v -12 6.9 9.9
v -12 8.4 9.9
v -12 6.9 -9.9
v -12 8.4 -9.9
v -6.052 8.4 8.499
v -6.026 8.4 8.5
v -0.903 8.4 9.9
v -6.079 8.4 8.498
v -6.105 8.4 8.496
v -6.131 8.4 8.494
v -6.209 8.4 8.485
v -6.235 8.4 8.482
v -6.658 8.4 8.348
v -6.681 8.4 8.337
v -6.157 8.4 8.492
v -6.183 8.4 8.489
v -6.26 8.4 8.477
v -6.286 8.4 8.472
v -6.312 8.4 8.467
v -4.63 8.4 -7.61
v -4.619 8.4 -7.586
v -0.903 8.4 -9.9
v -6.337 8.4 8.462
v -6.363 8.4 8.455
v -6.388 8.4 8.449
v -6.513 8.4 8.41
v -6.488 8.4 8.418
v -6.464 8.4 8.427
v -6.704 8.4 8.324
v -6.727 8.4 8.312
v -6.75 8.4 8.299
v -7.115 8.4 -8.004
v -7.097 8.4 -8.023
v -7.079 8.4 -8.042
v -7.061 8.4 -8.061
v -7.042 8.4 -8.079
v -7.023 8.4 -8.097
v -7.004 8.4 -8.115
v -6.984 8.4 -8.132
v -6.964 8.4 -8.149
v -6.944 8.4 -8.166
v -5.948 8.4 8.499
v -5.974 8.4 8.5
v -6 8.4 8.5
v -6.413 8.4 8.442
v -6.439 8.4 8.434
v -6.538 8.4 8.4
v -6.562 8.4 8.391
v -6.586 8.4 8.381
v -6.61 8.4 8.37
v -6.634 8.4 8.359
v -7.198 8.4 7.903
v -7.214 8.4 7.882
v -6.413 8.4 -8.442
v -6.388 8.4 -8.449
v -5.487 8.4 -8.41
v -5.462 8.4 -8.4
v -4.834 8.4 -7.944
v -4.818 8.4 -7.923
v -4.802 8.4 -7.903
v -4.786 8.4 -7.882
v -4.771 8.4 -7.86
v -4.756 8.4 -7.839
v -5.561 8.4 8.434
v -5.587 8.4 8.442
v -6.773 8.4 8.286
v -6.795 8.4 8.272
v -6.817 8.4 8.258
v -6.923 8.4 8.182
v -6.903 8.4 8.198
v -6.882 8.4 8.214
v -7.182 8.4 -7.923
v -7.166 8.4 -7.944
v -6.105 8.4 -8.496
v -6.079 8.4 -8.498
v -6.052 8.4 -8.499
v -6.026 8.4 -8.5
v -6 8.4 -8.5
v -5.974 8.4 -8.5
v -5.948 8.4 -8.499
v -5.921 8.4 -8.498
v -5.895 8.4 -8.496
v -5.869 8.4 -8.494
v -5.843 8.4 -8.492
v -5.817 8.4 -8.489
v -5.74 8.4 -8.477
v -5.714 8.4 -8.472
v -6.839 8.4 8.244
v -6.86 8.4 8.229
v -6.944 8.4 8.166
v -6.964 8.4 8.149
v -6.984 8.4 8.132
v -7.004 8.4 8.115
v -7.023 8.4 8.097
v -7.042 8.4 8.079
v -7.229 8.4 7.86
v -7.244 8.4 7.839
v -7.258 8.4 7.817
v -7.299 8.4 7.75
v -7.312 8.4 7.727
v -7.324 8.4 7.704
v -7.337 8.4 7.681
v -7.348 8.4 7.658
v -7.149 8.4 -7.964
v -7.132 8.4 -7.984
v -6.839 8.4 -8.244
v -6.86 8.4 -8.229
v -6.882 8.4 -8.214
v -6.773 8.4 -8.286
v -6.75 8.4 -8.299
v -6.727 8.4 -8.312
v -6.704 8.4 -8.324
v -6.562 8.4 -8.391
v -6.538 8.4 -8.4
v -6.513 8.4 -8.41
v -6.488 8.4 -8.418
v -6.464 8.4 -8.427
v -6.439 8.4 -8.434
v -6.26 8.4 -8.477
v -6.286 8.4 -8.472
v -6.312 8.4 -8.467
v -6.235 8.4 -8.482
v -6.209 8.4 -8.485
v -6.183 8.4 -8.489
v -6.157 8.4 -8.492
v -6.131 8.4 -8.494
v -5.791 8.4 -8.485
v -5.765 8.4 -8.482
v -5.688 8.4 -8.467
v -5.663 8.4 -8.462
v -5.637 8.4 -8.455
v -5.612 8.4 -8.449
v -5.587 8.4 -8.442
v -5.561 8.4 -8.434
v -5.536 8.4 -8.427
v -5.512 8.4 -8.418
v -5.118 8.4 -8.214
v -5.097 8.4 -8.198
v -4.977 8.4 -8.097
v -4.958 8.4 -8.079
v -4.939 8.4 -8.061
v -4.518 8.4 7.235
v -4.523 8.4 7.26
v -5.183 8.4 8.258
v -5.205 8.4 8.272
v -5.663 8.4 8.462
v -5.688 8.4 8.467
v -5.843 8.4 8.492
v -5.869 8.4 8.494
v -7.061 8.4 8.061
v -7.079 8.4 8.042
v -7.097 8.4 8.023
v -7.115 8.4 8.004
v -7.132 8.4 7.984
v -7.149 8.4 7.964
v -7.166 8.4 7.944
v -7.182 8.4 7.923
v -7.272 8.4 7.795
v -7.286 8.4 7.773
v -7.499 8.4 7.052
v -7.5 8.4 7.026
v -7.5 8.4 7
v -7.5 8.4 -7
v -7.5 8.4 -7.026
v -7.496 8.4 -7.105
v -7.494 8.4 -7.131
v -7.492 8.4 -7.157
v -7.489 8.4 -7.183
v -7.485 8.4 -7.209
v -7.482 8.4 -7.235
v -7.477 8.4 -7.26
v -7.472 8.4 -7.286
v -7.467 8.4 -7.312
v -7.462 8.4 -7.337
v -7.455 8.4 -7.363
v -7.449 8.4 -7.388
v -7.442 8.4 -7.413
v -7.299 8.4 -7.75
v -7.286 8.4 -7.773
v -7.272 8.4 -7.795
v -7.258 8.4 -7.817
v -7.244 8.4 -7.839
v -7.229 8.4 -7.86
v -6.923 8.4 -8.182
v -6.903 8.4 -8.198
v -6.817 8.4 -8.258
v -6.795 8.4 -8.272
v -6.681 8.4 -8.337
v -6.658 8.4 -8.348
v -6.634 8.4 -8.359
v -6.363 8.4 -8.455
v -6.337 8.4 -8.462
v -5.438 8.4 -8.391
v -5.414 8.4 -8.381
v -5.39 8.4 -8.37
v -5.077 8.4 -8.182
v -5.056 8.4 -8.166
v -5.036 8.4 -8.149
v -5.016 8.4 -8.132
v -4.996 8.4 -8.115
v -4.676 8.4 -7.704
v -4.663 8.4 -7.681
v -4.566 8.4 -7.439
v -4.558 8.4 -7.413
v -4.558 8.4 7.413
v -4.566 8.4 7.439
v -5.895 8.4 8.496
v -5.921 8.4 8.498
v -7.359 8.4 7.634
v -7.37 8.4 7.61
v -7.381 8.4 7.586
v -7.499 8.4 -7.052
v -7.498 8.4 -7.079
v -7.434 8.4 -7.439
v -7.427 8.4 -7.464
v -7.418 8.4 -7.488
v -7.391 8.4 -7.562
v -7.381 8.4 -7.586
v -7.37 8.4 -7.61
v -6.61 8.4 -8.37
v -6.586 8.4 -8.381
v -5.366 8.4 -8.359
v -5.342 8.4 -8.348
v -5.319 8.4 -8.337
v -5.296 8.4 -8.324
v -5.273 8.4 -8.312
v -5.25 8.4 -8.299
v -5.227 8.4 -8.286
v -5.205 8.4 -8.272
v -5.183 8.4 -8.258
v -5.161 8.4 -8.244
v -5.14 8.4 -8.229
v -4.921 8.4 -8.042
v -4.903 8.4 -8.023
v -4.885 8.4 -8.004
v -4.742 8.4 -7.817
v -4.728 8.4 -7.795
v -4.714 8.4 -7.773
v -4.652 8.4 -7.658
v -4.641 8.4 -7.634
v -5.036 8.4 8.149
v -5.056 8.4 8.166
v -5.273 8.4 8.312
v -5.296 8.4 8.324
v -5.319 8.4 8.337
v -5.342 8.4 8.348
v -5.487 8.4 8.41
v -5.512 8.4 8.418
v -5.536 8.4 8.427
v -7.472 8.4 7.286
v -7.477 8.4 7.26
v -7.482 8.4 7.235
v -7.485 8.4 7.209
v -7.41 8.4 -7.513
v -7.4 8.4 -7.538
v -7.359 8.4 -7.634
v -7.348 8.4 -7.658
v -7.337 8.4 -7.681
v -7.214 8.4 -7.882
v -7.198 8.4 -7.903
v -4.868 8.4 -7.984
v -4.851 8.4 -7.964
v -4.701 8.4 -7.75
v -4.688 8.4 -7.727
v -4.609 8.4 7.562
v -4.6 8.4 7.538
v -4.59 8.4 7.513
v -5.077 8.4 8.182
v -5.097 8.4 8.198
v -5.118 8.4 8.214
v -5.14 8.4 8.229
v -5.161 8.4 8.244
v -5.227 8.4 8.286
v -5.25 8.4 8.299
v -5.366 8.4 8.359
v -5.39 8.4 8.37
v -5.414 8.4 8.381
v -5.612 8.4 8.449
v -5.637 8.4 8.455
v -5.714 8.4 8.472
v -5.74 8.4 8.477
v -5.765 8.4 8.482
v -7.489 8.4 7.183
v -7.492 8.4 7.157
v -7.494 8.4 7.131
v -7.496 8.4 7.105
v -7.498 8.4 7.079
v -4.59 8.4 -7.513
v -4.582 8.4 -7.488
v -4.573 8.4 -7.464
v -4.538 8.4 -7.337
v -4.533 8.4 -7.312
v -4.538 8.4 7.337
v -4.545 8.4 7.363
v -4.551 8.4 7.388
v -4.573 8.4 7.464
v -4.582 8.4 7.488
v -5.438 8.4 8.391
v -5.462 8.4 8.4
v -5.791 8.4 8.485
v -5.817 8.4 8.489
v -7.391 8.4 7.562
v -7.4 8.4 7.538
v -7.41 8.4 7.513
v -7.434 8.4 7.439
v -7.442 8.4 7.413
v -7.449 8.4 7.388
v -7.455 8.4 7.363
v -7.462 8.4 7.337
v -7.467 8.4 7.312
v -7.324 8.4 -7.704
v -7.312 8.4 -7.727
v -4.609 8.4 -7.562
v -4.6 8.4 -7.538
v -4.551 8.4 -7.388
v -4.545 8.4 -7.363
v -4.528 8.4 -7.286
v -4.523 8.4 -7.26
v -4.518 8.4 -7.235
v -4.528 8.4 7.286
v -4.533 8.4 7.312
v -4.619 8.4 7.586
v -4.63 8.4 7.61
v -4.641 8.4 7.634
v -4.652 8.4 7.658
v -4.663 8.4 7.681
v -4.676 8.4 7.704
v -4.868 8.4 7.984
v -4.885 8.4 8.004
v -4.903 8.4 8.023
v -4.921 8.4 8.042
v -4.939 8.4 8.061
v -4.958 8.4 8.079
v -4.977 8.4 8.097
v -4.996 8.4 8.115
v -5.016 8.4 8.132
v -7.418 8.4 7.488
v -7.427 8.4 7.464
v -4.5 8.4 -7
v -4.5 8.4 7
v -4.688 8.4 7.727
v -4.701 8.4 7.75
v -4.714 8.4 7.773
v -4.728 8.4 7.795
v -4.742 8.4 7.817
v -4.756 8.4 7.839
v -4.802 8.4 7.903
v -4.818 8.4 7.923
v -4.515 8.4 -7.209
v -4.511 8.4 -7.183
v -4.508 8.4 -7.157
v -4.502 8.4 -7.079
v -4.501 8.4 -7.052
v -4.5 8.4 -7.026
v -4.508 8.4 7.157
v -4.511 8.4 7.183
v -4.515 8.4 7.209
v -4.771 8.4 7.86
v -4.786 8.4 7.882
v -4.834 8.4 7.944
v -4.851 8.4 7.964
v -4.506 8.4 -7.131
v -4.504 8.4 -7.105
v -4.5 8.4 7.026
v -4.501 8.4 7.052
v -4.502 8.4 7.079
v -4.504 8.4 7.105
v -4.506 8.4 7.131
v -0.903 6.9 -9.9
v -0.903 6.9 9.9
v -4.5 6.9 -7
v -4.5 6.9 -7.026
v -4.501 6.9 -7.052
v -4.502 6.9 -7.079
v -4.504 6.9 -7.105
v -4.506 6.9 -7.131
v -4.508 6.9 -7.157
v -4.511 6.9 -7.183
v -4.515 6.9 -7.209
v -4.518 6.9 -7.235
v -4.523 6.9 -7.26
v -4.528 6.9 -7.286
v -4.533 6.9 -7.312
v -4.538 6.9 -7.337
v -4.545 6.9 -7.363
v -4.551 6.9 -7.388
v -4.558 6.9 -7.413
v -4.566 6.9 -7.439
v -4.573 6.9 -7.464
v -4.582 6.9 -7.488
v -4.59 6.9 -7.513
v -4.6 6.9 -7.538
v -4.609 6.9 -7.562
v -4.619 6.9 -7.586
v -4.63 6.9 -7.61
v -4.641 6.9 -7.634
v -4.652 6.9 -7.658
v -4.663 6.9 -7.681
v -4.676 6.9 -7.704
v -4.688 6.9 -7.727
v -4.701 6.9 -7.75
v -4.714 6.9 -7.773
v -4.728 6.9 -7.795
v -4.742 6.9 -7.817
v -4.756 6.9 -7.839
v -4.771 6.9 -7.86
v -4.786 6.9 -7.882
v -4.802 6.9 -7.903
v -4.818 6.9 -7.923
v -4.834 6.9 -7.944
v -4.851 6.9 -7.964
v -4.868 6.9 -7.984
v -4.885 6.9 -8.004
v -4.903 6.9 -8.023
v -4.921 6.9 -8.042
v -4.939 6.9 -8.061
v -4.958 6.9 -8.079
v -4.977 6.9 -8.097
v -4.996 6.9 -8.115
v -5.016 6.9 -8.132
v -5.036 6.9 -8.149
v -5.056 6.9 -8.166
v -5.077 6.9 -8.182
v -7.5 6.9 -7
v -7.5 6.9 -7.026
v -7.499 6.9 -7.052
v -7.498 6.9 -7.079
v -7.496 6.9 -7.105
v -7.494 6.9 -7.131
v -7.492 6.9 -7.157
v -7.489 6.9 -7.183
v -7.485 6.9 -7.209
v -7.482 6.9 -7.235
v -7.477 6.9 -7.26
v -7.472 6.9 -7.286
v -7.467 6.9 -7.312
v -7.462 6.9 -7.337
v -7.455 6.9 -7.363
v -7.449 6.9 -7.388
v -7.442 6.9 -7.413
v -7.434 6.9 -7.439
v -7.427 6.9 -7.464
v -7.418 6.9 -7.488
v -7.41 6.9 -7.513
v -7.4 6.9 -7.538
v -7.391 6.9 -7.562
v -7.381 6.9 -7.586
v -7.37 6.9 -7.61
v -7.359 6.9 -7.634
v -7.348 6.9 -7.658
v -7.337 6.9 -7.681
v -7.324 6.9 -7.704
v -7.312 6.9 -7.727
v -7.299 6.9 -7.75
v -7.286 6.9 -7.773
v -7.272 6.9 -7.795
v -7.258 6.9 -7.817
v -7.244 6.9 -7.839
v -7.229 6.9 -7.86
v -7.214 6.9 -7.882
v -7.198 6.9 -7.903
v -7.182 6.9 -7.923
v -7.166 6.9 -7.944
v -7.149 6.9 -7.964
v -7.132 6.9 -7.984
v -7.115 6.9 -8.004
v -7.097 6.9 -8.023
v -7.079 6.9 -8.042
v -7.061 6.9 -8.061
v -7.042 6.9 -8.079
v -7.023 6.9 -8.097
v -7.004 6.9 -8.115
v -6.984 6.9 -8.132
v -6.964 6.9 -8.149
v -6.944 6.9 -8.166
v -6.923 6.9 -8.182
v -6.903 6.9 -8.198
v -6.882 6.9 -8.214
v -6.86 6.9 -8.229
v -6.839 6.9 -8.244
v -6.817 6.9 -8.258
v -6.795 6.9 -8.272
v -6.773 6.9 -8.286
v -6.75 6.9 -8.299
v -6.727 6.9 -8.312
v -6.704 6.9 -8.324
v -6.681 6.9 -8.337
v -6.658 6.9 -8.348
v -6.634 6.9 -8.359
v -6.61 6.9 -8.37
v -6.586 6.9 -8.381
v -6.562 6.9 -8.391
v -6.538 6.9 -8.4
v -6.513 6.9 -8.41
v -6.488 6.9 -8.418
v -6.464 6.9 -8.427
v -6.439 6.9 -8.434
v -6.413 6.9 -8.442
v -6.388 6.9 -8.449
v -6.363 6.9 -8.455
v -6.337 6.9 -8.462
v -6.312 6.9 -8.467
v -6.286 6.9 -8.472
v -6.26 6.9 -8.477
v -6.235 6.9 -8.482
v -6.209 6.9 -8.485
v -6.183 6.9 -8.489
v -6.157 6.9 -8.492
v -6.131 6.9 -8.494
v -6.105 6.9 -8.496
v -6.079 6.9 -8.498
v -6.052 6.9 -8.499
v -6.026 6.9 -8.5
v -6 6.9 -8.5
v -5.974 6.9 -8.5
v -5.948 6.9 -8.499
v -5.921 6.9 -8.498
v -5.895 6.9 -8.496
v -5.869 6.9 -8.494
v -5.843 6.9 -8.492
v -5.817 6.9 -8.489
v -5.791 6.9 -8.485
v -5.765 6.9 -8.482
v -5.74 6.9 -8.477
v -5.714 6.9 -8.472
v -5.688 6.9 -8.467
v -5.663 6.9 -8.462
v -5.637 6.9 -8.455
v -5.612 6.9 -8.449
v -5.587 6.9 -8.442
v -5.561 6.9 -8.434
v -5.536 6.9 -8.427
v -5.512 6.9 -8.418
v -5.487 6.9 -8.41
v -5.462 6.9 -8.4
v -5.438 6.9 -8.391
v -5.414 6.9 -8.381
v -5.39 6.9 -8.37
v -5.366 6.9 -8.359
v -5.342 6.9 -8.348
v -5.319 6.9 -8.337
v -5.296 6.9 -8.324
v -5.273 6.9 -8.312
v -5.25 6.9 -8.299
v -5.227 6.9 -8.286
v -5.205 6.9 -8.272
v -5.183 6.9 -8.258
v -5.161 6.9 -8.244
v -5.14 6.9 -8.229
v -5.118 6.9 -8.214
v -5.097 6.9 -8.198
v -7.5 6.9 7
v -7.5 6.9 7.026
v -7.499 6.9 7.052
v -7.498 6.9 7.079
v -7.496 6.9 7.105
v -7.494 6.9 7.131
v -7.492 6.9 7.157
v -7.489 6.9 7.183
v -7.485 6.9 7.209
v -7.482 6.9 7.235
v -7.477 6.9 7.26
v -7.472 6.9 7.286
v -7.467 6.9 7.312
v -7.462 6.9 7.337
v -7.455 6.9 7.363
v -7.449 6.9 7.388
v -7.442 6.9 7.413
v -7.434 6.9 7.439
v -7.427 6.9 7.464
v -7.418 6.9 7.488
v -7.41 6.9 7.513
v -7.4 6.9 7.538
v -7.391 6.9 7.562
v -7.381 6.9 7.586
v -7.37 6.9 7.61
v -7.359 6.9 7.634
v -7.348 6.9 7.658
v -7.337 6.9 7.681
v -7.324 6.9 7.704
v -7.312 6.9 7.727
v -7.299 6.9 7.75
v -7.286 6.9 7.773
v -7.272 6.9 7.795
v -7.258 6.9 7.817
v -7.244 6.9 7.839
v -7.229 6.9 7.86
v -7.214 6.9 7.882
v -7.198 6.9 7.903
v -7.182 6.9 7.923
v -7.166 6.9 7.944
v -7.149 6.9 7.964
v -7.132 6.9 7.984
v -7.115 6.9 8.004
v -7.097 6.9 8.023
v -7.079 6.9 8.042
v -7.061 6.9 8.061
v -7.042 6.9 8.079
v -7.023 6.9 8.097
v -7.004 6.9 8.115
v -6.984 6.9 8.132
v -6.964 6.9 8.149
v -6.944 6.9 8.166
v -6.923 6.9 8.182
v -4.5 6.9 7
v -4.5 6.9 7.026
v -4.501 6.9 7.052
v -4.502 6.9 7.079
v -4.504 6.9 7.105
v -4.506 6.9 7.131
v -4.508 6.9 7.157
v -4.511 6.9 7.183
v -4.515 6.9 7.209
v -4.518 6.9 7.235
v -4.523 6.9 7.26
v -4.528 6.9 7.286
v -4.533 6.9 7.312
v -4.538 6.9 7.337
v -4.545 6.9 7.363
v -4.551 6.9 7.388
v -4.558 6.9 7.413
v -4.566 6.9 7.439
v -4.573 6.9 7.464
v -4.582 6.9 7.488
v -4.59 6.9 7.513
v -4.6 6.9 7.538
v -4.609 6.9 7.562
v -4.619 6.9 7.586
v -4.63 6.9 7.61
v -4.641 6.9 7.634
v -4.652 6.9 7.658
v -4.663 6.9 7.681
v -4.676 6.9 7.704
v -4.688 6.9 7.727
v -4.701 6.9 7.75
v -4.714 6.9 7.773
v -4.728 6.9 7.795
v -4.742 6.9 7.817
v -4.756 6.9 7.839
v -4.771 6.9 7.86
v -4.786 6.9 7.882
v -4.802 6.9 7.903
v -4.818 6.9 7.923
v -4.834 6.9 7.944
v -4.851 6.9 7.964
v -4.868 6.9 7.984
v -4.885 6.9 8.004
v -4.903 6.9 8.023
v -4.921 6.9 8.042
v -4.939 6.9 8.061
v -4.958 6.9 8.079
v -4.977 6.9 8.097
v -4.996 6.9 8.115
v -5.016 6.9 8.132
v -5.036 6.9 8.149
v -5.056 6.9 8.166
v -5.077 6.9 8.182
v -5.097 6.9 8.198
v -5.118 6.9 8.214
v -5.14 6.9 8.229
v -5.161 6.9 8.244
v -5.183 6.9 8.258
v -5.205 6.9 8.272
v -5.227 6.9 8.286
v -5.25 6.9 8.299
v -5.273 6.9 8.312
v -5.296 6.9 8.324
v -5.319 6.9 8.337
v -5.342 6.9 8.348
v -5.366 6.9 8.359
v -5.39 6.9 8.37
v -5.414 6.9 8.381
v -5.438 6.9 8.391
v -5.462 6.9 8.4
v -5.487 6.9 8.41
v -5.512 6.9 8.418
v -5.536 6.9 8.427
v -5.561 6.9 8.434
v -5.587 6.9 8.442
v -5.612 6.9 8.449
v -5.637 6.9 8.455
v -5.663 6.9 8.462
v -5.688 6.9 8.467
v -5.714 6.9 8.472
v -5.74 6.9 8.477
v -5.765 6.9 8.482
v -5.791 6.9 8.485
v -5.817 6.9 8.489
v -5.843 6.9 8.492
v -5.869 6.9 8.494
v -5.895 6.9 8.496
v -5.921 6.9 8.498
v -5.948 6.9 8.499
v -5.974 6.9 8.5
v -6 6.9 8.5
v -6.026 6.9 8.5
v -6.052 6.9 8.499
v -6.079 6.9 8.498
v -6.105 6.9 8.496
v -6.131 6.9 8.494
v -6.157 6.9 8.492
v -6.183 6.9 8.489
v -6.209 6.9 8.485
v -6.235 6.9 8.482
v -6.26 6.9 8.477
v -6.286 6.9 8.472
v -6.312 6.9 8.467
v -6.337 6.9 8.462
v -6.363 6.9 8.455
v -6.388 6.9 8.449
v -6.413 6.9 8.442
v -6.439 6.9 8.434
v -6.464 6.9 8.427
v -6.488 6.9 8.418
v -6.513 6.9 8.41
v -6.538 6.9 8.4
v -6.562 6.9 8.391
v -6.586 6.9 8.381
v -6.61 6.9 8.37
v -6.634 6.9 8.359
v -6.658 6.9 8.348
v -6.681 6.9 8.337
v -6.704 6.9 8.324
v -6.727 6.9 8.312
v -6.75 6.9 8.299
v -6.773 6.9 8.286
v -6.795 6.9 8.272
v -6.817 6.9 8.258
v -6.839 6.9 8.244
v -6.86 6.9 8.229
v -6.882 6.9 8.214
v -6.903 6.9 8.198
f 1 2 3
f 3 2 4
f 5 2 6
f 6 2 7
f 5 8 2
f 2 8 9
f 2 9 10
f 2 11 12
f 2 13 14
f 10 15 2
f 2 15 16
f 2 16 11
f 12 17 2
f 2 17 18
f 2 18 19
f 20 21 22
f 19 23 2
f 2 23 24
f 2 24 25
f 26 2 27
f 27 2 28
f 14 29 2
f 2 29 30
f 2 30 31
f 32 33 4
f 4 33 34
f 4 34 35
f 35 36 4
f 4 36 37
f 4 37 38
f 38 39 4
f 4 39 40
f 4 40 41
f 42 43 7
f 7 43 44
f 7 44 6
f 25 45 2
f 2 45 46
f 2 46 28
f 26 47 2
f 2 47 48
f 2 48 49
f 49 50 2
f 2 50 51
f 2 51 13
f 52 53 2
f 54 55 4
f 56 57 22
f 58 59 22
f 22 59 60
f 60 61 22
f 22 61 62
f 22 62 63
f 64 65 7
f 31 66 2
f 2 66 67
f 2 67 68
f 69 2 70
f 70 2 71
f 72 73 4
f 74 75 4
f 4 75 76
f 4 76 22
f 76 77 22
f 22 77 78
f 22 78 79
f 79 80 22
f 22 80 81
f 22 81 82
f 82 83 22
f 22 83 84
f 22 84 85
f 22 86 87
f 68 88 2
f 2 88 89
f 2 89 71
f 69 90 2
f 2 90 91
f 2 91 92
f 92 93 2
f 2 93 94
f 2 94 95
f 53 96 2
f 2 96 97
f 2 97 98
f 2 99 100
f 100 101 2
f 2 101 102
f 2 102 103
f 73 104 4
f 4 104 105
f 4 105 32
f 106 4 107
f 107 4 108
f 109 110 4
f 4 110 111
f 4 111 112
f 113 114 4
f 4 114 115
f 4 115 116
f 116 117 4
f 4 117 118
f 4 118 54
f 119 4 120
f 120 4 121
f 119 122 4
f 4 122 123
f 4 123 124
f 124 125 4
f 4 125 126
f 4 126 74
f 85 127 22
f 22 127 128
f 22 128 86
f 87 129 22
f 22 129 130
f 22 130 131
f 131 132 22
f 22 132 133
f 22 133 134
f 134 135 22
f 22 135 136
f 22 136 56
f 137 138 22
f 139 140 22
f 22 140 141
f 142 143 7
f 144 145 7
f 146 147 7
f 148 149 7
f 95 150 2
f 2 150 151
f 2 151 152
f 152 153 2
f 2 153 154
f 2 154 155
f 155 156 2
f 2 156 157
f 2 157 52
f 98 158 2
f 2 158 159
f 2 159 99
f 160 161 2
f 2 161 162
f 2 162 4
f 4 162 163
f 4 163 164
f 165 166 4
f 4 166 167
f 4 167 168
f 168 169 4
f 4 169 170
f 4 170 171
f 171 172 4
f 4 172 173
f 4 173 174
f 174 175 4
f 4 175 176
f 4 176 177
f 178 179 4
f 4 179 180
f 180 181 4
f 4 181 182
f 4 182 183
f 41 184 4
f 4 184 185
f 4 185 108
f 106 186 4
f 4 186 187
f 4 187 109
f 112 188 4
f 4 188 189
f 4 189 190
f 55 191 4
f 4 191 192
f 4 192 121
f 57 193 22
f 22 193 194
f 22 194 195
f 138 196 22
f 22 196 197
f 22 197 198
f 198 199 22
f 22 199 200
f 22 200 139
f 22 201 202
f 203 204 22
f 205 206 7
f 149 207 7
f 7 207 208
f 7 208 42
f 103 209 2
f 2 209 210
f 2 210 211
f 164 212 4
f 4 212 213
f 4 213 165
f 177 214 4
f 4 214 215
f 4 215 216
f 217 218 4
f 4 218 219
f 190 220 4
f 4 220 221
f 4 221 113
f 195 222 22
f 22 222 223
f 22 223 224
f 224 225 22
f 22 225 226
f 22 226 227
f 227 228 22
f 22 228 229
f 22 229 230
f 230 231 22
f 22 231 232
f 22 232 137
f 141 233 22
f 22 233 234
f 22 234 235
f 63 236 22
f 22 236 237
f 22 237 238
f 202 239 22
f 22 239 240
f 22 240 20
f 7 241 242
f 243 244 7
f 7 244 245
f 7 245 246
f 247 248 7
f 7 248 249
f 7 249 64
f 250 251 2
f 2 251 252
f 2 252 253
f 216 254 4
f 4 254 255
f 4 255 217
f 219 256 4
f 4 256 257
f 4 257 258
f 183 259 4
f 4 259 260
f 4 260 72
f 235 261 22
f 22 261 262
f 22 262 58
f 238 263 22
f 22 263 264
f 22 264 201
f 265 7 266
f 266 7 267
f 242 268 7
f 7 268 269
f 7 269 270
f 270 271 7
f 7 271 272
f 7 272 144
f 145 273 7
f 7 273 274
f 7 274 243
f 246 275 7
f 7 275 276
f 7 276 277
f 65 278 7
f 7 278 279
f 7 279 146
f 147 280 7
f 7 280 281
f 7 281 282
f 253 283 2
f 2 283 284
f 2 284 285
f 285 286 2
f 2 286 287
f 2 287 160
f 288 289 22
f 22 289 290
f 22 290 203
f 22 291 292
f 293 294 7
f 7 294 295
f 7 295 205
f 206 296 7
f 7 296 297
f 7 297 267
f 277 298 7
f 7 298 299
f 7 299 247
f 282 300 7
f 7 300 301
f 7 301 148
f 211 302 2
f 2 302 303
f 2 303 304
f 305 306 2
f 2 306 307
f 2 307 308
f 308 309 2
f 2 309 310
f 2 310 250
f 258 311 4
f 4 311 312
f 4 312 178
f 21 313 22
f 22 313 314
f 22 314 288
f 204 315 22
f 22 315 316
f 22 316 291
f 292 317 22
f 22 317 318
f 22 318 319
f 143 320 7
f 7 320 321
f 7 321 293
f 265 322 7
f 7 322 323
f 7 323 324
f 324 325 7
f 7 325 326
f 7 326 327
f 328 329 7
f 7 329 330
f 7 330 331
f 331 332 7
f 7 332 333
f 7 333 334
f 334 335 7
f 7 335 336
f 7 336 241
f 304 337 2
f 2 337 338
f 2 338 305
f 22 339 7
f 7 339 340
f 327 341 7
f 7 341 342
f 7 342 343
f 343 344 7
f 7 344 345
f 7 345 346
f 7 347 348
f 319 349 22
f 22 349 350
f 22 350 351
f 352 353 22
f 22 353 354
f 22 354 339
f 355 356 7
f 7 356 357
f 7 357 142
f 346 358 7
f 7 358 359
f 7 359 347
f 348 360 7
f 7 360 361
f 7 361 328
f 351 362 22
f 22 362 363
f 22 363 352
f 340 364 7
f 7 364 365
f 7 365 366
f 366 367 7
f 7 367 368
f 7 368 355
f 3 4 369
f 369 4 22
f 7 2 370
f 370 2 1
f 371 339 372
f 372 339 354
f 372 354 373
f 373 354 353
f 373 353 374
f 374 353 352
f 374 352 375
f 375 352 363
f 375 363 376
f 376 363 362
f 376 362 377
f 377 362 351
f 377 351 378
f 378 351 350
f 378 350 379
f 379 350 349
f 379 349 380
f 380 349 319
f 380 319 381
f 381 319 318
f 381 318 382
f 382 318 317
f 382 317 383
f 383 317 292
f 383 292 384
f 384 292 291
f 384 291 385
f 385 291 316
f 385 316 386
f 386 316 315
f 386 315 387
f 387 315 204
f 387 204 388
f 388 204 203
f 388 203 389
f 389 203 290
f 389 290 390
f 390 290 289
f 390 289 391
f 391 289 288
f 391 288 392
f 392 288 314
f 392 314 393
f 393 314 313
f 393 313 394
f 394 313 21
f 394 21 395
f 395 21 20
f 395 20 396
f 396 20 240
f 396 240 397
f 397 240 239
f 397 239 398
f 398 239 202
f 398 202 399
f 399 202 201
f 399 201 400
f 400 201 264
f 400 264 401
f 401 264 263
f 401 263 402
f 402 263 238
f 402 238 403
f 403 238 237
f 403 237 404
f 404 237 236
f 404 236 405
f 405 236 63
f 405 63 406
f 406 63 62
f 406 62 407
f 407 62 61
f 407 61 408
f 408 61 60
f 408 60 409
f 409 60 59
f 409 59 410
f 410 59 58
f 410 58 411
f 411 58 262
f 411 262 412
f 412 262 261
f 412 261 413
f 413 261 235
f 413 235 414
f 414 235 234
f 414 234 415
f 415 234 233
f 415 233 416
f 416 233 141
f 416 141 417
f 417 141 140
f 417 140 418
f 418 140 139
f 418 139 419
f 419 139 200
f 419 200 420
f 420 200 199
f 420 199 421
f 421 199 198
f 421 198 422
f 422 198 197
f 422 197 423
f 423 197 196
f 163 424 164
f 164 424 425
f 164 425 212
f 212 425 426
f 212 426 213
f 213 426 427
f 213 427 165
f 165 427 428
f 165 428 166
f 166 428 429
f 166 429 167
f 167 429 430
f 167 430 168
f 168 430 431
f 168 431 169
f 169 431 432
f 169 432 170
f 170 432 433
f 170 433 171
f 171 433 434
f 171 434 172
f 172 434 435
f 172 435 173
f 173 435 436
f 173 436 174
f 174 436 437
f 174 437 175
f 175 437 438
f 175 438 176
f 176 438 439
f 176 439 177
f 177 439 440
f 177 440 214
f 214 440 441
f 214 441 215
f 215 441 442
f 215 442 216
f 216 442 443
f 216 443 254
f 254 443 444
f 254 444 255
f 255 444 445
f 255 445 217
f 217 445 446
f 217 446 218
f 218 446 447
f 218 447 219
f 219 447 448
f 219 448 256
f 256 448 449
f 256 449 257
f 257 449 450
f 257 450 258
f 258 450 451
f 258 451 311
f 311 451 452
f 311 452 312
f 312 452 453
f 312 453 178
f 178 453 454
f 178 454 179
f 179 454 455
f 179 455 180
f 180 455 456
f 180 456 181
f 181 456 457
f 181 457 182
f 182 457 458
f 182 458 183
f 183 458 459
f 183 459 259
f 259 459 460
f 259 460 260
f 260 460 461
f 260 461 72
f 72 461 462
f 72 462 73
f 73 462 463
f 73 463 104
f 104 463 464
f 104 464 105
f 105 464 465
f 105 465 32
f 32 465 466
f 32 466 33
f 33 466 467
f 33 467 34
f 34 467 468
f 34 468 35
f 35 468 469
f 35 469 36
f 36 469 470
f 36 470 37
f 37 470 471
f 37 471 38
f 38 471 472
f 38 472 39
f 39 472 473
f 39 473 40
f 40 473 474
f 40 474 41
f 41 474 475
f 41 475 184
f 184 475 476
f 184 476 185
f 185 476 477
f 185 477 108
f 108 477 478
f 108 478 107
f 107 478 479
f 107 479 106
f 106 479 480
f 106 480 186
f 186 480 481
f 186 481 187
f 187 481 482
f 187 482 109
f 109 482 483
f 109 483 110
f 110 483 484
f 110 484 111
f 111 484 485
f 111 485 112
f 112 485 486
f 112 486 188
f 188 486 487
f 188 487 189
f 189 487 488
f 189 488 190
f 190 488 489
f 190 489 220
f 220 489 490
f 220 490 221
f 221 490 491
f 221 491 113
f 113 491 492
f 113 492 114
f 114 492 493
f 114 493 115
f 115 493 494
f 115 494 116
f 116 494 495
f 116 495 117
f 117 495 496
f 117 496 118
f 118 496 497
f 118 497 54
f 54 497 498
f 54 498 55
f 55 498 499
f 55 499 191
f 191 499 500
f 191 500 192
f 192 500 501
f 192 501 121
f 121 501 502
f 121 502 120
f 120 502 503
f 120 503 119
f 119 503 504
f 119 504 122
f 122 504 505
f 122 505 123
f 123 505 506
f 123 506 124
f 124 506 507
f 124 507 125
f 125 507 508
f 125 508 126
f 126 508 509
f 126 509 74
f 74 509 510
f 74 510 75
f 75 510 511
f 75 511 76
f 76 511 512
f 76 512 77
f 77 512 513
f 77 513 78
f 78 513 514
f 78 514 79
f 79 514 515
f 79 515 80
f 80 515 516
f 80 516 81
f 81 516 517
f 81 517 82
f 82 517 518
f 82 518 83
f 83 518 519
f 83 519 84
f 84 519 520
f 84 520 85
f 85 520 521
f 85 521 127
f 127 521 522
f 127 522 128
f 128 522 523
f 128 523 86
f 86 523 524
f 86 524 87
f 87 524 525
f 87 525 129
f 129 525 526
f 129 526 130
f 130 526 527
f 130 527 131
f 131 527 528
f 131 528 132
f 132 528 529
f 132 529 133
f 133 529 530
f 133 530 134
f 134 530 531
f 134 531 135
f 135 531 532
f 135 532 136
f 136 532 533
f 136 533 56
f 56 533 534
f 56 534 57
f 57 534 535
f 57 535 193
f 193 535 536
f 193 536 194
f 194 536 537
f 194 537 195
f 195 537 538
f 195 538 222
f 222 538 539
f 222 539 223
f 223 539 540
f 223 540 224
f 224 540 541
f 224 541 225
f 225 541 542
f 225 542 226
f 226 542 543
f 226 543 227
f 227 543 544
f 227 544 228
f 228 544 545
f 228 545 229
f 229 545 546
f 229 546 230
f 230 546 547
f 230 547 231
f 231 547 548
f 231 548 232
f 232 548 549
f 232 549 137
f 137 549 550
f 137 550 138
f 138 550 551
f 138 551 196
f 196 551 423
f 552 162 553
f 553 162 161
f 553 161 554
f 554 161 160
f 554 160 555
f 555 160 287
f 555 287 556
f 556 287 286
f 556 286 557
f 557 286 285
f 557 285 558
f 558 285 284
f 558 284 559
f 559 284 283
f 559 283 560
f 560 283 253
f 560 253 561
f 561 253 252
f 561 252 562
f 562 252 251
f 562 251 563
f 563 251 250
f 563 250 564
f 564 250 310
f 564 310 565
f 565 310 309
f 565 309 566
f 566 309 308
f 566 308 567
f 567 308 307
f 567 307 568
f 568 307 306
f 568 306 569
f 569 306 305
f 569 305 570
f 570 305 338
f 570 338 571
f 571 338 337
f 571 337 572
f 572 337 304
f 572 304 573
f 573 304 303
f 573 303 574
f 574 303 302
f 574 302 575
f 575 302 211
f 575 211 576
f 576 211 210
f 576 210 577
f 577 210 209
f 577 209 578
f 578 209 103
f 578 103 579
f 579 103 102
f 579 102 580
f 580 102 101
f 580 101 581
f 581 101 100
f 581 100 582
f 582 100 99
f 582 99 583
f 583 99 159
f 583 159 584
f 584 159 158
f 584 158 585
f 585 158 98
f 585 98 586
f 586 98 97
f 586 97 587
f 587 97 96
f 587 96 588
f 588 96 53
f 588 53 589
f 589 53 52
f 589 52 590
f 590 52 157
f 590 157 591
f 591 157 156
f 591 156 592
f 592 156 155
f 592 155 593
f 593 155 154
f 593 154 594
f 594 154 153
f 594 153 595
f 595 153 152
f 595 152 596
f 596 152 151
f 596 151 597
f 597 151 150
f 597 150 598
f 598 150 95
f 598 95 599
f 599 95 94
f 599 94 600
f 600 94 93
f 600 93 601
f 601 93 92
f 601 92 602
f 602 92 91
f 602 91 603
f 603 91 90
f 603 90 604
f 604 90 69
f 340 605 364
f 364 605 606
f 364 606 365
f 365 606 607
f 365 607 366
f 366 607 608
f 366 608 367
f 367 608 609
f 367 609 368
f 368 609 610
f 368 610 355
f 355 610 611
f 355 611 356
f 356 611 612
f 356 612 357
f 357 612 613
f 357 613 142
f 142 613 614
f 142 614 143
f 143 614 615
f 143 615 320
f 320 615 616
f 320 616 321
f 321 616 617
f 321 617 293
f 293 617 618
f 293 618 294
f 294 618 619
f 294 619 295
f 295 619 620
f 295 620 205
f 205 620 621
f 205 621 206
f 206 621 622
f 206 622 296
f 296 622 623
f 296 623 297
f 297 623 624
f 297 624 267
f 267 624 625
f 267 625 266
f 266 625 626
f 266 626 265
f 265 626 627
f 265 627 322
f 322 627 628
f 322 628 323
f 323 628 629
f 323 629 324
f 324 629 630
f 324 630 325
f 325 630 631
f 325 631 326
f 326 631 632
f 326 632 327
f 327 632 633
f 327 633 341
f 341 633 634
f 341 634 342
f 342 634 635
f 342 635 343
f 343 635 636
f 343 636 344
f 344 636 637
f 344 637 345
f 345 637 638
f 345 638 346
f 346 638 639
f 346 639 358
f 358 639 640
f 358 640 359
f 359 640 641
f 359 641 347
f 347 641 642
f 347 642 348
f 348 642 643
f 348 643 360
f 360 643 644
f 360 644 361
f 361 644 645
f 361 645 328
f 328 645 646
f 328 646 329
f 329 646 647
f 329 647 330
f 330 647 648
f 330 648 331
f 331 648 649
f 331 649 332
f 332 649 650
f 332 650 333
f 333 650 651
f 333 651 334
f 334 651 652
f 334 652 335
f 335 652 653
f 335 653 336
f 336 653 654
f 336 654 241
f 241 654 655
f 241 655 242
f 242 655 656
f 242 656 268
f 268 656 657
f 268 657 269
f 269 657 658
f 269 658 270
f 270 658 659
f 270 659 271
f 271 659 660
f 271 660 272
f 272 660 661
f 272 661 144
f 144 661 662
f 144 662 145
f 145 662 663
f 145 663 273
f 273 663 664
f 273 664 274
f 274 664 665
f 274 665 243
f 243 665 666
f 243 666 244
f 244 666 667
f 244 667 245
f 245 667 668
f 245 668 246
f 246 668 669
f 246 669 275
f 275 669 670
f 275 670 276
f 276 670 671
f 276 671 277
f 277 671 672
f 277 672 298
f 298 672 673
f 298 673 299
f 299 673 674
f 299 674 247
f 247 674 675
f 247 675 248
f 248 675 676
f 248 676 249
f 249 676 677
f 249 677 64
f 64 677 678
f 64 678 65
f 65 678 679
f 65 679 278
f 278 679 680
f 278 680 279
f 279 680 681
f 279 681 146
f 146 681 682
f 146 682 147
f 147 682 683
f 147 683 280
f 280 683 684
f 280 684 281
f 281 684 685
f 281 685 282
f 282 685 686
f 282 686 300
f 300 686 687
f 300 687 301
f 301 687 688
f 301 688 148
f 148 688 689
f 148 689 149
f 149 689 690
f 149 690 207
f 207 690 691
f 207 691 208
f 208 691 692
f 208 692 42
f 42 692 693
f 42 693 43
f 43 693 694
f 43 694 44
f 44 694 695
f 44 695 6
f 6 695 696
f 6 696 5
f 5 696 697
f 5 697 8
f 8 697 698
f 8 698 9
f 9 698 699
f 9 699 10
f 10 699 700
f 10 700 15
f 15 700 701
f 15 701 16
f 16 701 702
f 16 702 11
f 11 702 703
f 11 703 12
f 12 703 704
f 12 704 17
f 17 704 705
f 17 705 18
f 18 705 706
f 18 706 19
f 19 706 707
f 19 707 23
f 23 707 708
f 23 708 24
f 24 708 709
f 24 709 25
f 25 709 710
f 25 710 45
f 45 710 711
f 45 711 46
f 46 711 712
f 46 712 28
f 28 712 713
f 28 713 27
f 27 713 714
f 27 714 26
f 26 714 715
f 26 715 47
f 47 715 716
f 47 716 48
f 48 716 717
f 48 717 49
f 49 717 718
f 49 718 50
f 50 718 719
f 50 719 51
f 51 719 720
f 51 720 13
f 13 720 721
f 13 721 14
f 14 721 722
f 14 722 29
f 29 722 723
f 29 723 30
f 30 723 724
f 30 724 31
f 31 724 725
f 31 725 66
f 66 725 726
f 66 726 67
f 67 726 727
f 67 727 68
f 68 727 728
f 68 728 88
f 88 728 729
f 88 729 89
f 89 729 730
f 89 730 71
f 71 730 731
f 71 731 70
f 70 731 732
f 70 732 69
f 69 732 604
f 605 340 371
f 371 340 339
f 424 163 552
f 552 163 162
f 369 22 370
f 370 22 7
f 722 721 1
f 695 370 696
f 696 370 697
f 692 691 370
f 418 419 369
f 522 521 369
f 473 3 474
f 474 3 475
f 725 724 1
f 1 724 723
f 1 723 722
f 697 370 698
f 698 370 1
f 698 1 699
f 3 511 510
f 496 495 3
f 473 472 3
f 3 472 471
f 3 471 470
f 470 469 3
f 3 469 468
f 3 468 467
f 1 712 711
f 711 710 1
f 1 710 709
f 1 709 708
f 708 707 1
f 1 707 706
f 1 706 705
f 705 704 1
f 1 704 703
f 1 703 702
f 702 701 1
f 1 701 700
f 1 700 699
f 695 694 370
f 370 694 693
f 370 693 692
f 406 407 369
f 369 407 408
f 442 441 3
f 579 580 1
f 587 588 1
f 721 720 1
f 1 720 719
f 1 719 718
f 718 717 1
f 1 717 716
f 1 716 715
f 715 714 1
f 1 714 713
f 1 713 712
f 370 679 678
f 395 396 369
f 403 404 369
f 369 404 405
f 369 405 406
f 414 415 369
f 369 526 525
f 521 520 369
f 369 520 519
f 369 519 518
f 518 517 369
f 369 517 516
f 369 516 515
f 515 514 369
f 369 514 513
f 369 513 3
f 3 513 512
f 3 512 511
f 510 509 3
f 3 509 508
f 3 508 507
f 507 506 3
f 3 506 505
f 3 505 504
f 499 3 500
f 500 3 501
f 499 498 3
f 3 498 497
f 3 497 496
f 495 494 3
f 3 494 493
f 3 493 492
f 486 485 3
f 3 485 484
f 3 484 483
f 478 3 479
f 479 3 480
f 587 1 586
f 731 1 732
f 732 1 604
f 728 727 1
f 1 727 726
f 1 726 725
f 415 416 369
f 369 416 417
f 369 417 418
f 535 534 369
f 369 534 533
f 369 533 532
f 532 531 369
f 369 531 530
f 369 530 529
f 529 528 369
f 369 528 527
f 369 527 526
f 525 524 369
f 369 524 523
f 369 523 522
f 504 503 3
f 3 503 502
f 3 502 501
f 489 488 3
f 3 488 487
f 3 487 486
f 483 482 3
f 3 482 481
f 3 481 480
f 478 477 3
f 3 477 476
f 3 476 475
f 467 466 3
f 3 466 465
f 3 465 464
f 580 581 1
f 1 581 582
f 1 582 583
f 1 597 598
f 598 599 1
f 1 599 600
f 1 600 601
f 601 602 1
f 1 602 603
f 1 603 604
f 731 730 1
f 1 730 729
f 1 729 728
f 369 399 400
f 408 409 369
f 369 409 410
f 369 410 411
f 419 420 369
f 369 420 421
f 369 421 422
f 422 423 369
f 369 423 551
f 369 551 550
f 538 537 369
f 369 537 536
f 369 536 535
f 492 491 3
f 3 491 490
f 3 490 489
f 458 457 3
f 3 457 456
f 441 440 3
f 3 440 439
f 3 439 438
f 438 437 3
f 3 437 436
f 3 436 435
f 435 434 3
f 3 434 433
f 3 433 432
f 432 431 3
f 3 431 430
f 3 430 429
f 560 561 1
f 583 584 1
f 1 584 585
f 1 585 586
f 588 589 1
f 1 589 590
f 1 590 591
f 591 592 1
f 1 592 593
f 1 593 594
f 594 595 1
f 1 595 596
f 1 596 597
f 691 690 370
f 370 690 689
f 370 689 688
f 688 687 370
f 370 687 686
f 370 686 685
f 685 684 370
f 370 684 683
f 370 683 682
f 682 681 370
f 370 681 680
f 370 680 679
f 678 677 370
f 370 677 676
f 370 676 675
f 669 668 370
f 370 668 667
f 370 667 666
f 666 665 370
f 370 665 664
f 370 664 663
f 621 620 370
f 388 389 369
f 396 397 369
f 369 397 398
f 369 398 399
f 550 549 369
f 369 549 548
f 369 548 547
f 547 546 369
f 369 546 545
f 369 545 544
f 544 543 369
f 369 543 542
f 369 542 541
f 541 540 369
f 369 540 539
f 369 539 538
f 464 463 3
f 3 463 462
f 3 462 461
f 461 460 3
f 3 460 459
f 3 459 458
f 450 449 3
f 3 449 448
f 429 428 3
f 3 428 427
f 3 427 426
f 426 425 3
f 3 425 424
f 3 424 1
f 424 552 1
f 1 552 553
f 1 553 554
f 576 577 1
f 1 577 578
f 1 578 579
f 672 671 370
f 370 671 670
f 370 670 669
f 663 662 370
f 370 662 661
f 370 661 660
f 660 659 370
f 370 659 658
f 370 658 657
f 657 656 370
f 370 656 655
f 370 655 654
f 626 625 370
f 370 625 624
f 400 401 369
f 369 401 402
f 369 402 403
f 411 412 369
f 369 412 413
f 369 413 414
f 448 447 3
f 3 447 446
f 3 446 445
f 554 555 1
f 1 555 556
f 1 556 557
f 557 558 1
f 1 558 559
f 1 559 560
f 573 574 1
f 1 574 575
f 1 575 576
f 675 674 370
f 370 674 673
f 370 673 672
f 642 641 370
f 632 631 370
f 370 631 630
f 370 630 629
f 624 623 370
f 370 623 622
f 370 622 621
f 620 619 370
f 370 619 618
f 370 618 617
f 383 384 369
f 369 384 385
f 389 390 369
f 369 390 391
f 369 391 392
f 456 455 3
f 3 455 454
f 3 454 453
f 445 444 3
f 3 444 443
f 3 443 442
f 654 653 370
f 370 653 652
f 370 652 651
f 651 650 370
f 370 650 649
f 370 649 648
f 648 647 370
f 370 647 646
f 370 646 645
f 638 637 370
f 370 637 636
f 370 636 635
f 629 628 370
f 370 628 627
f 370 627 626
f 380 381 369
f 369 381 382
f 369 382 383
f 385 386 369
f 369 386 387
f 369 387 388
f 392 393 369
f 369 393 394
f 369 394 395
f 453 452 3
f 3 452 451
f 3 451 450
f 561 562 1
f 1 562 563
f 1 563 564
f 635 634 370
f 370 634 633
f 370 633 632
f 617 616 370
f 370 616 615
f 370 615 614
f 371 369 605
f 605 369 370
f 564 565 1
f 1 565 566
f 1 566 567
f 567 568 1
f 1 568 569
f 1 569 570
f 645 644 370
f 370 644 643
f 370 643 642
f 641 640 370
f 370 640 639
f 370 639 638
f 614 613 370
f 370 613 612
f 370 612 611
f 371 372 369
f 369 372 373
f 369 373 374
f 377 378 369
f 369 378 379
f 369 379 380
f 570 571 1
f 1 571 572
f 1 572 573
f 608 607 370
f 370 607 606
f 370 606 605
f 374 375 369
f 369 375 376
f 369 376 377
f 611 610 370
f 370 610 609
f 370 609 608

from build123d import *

# Parameters (mm, degrees)
SKETCH1_W               = 13.8
SKETCH1_H               = 8.8
BOSS_EXTRUDE1_DEPTH     = 3
SKETCH2_W               = 2
SKETCH2_H               = 35
BOSS_EXTRUDE2_DEPTH     = 3
SKETCH3_W               = 1.2
SKETCH3_H               = 6
BOSS_EXTRUDE3_DEPTH     = 7
FILLET3_R               = 10
SKETCH5_W               = 15
SKETCH5_H               = 13.8
BOSS_EXTRUDE4_DEPTH     = 4
SKETCH6_R               = 1.5
CUT_EXTRUDE4_DEPTH      = 38.968539608
BOSS_EXTRUDE5_DEPTH     = 2
CHAMFER2_SIZE           = 3
BOSS_EXTRUDE7_DEPTH     = 1.2
SKETCH12_W              = 15
SKETCH12_H              = 4
BOSS_EXTRUDE8_DEPTH     = 3
SKETCH13_W              = 15
SKETCH13_H              = 4
BOSS_EXTRUDE9_DEPTH     = 3
CUT_EXTRUDE7_DEPTH      = 43.28486727
CUT_EXTRUDE7_DEPTH_BACK = 43.28486727
CUT_EXTRUDE8_DEPTH      = 43.28486727
CUT_EXTRUDE8_DEPTH_BACK = 43.28486727
SKETCH15_W              = 0.807911756
SKETCH15_H              = 0.64
CUT_EXTRUDE9_DEPTH      = 41.244591358
CUT_EXTRUDE9_DEPTH_BACK = 41.244591358
SKETCH16_W              = 0.64
SKETCH16_H              = 0.6
CHAMFER3_SIZE           = 1
SKETCH18_W              = 20.701942652
SKETCH18_H              = 41.728044518
CUT_EXTRUDE10_DEPTH     = 36
SKETCH19_W              = 11.097134513
SKETCH19_H              = 20.928514419
CUT_EXTRUDE11_DEPTH     = 2.5


# Some blends are built 0.0001 mm under size
with BuildPart() as part:
    # Sketch1 → Boss-Extrude1 (new body)
    with BuildSketch(Plane(origin=(0, 0, 0), x_dir=(0, 0, -1), z_dir=(1, 0, 0))):
        Rectangle(SKETCH1_W, SKETCH1_H)
    extrude(amount=BOSS_EXTRUDE1_DEPTH)

    # Sketch2 → Boss-Extrude2 (add)
    with BuildSketch(Plane(origin=(3, 0, 0), x_dir=(0, 0, -1), z_dir=(1, 0, 0))):
        with Locations((0, -13.1)):
            Rectangle(SKETCH2_W, SKETCH2_H)
    extrude(amount=BOSS_EXTRUDE2_DEPTH)

    # Sketch3 → Boss-Extrude3 (add)
    with BuildSketch(Plane(origin=(6, 0, 0), x_dir=(0, 0, -1), z_dir=(1, 0, 0))):
        with Locations((0, -27.6)):
            Rectangle(SKETCH3_W, SKETCH3_H)
    extrude(amount=BOSS_EXTRUDE3_DEPTH)

    # Fillet3
    # the kernel refuses this fillet: 10 mm, written as the material it adds along each edge
    with BuildSketch(Plane(origin=(3, -4.4, 1), x_dir=(-1, 0, 0), z_dir=(0, 0, -1))) as fillet3_piece_1:
        with BuildLine():
            CenterArc((10, -7.141428429), FILLET3_R, 134.427004001, 45.572995999)
            Line((0, -7.141428429), (0, 0))
            Line((0, 0), (3, 0))
        make_face()
    extrude(amount=2)

    # Sketch5 → Boss-Extrude4 (add)
    with BuildSketch(Plane(origin=(0, 4.4, 0), x_dir=(1, 0, 0), z_dir=(0, 1, 0))):
        with Locations((-4.5, 0)):
            Rectangle(SKETCH5_W, SKETCH5_H)
    extrude(amount=BOSS_EXTRUDE4_DEPTH)

    # Sketch6 → Cut-Extrude4 (cut, through all)
    with BuildSketch(Plane.XZ.offset(-4.4)):
        with Locations(Location((-6, 3, 0), (0, 0, 270))):
            Circle(SKETCH6_R)
        with Locations(Location((-6, -3, 0), (0, 0, 270))):
            Circle(SKETCH6_R)
    extrude(amount=-CUT_EXTRUDE4_DEPTH, mode=Mode.SUBTRACT)

    # Sketch8 → Boss-Extrude5 (add)
    with BuildSketch(Plane(origin=(0, 0, -1), x_dir=(-1, 0, 0), z_dir=(0, 0, -1))):
        Polygon((-3, -18.758153574), (0, -4.4), (-3, -4.4), align=None)
    extrude(amount=-BOSS_EXTRUDE5_DEPTH)

    # Chamfer2
    chamfer2_edges = [part.edges().sort_by_distance(p)[0] for p in [
        (3, 4.4, 0),
    ]]
    chamfer(chamfer2_edges, length=CHAMFER2_SIZE - 0.0001)  # a hair under: the kernel refuses the full size

    # Sketch11 → Boss-Extrude7 (add)
    with BuildSketch(Plane(origin=(0, 0, -0.6), x_dir=(-1, 0, 0), z_dir=(0, 0, -1))):
        Polygon((-6, -24.6), (-13, -24.6), (-6, 1.742521041), align=None)
    extrude(amount=-BOSS_EXTRUDE7_DEPTH)

    # Sketch12 → Boss-Extrude8 (add)
    with BuildSketch(Plane(origin=(0, 0, -6.9), x_dir=(-1, 0, 0), z_dir=(0, 0, -1))):
        with Locations((4.5, 6.4)):
            Rectangle(SKETCH12_W, SKETCH12_H)
    extrude(amount=BOSS_EXTRUDE8_DEPTH)

    # Sketch13 → Boss-Extrude9 (add)
    with BuildSketch(Plane.XY.offset(6.9)):
        with Locations((-4.5, 6.4)):
            Rectangle(SKETCH13_W, SKETCH13_H)
    extrude(amount=BOSS_EXTRUDE9_DEPTH)

    # Sketch14 → Cut-Extrude7 (cut, two sides: drawn at the far end of the back side and taken through both)
    with BuildSketch(Plane(origin=(0, 8.4, 0), x_dir=(1, 0, 0), z_dir=(0, 1, 0)).offset(-CUT_EXTRUDE7_DEPTH_BACK)):
        with BuildLine():
            Line((-7.5, 7), (-7.5, -7))
            ThreePointArc((-7.5, -7), (-6, -8.5), (-4.5, -7))
            Line((-4.5, -7), (-4.5, 7))
            ThreePointArc((-4.5, 7), (-6, 8.5), (-7.5, 7))
        make_face()
    extrude(amount=CUT_EXTRUDE7_DEPTH + CUT_EXTRUDE7_DEPTH_BACK, mode=Mode.SUBTRACT)

    # Sketch15 → Cut-Extrude8 (cut, two sides: drawn at the far end of the back side and taken through both)
    with BuildSketch(Plane.XZ.offset(30.6).offset(-CUT_EXTRUDE8_DEPTH_BACK)):
        with Locations((12.596044122, 0)):
            Rectangle(SKETCH15_W, SKETCH15_H)
    extrude(amount=CUT_EXTRUDE8_DEPTH + CUT_EXTRUDE8_DEPTH_BACK, mode=Mode.SUBTRACT)

    # Sketch16 → Cut-Extrude9 (cut, two sides: drawn at the far end of the back side and taken through both)
    with BuildSketch(Plane(origin=(12.192088244, 0, 0), x_dir=(0, 0, -1), z_dir=(1, 0, 0)).offset(-CUT_EXTRUDE9_DEPTH_BACK)):
        with Locations((0, -30.3)):
            Rectangle(SKETCH16_W, SKETCH16_H)
    extrude(amount=CUT_EXTRUDE9_DEPTH + CUT_EXTRUDE9_DEPTH_BACK, mode=Mode.SUBTRACT)

    # Chamfer3
    chamfer3_edges = [part.edges().sort_by_distance(p)[0] for p in [
        (12.192088244, -30, 0),
    ]]
    chamfer(chamfer3_edges, length=CHAMFER3_SIZE)

    # Sketch18 → Cut-Extrude10 (cut)
    with BuildSketch(Plane.XY.offset(9.9)):
        with Locations((9.448105839, -12.464022259)):
            Rectangle(SKETCH18_W, SKETCH18_H)
    extrude(amount=-CUT_EXTRUDE10_DEPTH, mode=Mode.SUBTRACT)

    # Sketch19 → Cut-Extrude11 (cut)
    with BuildSketch(Plane.XZ.offset(-4.4)):
        with Locations((-6.451432743, 0.56425721)):
            Rectangle(SKETCH19_W, SKETCH19_H)
    extrude(amount=-CUT_EXTRUDE11_DEPTH, mode=Mode.SUBTRACT)


solid = part.part
